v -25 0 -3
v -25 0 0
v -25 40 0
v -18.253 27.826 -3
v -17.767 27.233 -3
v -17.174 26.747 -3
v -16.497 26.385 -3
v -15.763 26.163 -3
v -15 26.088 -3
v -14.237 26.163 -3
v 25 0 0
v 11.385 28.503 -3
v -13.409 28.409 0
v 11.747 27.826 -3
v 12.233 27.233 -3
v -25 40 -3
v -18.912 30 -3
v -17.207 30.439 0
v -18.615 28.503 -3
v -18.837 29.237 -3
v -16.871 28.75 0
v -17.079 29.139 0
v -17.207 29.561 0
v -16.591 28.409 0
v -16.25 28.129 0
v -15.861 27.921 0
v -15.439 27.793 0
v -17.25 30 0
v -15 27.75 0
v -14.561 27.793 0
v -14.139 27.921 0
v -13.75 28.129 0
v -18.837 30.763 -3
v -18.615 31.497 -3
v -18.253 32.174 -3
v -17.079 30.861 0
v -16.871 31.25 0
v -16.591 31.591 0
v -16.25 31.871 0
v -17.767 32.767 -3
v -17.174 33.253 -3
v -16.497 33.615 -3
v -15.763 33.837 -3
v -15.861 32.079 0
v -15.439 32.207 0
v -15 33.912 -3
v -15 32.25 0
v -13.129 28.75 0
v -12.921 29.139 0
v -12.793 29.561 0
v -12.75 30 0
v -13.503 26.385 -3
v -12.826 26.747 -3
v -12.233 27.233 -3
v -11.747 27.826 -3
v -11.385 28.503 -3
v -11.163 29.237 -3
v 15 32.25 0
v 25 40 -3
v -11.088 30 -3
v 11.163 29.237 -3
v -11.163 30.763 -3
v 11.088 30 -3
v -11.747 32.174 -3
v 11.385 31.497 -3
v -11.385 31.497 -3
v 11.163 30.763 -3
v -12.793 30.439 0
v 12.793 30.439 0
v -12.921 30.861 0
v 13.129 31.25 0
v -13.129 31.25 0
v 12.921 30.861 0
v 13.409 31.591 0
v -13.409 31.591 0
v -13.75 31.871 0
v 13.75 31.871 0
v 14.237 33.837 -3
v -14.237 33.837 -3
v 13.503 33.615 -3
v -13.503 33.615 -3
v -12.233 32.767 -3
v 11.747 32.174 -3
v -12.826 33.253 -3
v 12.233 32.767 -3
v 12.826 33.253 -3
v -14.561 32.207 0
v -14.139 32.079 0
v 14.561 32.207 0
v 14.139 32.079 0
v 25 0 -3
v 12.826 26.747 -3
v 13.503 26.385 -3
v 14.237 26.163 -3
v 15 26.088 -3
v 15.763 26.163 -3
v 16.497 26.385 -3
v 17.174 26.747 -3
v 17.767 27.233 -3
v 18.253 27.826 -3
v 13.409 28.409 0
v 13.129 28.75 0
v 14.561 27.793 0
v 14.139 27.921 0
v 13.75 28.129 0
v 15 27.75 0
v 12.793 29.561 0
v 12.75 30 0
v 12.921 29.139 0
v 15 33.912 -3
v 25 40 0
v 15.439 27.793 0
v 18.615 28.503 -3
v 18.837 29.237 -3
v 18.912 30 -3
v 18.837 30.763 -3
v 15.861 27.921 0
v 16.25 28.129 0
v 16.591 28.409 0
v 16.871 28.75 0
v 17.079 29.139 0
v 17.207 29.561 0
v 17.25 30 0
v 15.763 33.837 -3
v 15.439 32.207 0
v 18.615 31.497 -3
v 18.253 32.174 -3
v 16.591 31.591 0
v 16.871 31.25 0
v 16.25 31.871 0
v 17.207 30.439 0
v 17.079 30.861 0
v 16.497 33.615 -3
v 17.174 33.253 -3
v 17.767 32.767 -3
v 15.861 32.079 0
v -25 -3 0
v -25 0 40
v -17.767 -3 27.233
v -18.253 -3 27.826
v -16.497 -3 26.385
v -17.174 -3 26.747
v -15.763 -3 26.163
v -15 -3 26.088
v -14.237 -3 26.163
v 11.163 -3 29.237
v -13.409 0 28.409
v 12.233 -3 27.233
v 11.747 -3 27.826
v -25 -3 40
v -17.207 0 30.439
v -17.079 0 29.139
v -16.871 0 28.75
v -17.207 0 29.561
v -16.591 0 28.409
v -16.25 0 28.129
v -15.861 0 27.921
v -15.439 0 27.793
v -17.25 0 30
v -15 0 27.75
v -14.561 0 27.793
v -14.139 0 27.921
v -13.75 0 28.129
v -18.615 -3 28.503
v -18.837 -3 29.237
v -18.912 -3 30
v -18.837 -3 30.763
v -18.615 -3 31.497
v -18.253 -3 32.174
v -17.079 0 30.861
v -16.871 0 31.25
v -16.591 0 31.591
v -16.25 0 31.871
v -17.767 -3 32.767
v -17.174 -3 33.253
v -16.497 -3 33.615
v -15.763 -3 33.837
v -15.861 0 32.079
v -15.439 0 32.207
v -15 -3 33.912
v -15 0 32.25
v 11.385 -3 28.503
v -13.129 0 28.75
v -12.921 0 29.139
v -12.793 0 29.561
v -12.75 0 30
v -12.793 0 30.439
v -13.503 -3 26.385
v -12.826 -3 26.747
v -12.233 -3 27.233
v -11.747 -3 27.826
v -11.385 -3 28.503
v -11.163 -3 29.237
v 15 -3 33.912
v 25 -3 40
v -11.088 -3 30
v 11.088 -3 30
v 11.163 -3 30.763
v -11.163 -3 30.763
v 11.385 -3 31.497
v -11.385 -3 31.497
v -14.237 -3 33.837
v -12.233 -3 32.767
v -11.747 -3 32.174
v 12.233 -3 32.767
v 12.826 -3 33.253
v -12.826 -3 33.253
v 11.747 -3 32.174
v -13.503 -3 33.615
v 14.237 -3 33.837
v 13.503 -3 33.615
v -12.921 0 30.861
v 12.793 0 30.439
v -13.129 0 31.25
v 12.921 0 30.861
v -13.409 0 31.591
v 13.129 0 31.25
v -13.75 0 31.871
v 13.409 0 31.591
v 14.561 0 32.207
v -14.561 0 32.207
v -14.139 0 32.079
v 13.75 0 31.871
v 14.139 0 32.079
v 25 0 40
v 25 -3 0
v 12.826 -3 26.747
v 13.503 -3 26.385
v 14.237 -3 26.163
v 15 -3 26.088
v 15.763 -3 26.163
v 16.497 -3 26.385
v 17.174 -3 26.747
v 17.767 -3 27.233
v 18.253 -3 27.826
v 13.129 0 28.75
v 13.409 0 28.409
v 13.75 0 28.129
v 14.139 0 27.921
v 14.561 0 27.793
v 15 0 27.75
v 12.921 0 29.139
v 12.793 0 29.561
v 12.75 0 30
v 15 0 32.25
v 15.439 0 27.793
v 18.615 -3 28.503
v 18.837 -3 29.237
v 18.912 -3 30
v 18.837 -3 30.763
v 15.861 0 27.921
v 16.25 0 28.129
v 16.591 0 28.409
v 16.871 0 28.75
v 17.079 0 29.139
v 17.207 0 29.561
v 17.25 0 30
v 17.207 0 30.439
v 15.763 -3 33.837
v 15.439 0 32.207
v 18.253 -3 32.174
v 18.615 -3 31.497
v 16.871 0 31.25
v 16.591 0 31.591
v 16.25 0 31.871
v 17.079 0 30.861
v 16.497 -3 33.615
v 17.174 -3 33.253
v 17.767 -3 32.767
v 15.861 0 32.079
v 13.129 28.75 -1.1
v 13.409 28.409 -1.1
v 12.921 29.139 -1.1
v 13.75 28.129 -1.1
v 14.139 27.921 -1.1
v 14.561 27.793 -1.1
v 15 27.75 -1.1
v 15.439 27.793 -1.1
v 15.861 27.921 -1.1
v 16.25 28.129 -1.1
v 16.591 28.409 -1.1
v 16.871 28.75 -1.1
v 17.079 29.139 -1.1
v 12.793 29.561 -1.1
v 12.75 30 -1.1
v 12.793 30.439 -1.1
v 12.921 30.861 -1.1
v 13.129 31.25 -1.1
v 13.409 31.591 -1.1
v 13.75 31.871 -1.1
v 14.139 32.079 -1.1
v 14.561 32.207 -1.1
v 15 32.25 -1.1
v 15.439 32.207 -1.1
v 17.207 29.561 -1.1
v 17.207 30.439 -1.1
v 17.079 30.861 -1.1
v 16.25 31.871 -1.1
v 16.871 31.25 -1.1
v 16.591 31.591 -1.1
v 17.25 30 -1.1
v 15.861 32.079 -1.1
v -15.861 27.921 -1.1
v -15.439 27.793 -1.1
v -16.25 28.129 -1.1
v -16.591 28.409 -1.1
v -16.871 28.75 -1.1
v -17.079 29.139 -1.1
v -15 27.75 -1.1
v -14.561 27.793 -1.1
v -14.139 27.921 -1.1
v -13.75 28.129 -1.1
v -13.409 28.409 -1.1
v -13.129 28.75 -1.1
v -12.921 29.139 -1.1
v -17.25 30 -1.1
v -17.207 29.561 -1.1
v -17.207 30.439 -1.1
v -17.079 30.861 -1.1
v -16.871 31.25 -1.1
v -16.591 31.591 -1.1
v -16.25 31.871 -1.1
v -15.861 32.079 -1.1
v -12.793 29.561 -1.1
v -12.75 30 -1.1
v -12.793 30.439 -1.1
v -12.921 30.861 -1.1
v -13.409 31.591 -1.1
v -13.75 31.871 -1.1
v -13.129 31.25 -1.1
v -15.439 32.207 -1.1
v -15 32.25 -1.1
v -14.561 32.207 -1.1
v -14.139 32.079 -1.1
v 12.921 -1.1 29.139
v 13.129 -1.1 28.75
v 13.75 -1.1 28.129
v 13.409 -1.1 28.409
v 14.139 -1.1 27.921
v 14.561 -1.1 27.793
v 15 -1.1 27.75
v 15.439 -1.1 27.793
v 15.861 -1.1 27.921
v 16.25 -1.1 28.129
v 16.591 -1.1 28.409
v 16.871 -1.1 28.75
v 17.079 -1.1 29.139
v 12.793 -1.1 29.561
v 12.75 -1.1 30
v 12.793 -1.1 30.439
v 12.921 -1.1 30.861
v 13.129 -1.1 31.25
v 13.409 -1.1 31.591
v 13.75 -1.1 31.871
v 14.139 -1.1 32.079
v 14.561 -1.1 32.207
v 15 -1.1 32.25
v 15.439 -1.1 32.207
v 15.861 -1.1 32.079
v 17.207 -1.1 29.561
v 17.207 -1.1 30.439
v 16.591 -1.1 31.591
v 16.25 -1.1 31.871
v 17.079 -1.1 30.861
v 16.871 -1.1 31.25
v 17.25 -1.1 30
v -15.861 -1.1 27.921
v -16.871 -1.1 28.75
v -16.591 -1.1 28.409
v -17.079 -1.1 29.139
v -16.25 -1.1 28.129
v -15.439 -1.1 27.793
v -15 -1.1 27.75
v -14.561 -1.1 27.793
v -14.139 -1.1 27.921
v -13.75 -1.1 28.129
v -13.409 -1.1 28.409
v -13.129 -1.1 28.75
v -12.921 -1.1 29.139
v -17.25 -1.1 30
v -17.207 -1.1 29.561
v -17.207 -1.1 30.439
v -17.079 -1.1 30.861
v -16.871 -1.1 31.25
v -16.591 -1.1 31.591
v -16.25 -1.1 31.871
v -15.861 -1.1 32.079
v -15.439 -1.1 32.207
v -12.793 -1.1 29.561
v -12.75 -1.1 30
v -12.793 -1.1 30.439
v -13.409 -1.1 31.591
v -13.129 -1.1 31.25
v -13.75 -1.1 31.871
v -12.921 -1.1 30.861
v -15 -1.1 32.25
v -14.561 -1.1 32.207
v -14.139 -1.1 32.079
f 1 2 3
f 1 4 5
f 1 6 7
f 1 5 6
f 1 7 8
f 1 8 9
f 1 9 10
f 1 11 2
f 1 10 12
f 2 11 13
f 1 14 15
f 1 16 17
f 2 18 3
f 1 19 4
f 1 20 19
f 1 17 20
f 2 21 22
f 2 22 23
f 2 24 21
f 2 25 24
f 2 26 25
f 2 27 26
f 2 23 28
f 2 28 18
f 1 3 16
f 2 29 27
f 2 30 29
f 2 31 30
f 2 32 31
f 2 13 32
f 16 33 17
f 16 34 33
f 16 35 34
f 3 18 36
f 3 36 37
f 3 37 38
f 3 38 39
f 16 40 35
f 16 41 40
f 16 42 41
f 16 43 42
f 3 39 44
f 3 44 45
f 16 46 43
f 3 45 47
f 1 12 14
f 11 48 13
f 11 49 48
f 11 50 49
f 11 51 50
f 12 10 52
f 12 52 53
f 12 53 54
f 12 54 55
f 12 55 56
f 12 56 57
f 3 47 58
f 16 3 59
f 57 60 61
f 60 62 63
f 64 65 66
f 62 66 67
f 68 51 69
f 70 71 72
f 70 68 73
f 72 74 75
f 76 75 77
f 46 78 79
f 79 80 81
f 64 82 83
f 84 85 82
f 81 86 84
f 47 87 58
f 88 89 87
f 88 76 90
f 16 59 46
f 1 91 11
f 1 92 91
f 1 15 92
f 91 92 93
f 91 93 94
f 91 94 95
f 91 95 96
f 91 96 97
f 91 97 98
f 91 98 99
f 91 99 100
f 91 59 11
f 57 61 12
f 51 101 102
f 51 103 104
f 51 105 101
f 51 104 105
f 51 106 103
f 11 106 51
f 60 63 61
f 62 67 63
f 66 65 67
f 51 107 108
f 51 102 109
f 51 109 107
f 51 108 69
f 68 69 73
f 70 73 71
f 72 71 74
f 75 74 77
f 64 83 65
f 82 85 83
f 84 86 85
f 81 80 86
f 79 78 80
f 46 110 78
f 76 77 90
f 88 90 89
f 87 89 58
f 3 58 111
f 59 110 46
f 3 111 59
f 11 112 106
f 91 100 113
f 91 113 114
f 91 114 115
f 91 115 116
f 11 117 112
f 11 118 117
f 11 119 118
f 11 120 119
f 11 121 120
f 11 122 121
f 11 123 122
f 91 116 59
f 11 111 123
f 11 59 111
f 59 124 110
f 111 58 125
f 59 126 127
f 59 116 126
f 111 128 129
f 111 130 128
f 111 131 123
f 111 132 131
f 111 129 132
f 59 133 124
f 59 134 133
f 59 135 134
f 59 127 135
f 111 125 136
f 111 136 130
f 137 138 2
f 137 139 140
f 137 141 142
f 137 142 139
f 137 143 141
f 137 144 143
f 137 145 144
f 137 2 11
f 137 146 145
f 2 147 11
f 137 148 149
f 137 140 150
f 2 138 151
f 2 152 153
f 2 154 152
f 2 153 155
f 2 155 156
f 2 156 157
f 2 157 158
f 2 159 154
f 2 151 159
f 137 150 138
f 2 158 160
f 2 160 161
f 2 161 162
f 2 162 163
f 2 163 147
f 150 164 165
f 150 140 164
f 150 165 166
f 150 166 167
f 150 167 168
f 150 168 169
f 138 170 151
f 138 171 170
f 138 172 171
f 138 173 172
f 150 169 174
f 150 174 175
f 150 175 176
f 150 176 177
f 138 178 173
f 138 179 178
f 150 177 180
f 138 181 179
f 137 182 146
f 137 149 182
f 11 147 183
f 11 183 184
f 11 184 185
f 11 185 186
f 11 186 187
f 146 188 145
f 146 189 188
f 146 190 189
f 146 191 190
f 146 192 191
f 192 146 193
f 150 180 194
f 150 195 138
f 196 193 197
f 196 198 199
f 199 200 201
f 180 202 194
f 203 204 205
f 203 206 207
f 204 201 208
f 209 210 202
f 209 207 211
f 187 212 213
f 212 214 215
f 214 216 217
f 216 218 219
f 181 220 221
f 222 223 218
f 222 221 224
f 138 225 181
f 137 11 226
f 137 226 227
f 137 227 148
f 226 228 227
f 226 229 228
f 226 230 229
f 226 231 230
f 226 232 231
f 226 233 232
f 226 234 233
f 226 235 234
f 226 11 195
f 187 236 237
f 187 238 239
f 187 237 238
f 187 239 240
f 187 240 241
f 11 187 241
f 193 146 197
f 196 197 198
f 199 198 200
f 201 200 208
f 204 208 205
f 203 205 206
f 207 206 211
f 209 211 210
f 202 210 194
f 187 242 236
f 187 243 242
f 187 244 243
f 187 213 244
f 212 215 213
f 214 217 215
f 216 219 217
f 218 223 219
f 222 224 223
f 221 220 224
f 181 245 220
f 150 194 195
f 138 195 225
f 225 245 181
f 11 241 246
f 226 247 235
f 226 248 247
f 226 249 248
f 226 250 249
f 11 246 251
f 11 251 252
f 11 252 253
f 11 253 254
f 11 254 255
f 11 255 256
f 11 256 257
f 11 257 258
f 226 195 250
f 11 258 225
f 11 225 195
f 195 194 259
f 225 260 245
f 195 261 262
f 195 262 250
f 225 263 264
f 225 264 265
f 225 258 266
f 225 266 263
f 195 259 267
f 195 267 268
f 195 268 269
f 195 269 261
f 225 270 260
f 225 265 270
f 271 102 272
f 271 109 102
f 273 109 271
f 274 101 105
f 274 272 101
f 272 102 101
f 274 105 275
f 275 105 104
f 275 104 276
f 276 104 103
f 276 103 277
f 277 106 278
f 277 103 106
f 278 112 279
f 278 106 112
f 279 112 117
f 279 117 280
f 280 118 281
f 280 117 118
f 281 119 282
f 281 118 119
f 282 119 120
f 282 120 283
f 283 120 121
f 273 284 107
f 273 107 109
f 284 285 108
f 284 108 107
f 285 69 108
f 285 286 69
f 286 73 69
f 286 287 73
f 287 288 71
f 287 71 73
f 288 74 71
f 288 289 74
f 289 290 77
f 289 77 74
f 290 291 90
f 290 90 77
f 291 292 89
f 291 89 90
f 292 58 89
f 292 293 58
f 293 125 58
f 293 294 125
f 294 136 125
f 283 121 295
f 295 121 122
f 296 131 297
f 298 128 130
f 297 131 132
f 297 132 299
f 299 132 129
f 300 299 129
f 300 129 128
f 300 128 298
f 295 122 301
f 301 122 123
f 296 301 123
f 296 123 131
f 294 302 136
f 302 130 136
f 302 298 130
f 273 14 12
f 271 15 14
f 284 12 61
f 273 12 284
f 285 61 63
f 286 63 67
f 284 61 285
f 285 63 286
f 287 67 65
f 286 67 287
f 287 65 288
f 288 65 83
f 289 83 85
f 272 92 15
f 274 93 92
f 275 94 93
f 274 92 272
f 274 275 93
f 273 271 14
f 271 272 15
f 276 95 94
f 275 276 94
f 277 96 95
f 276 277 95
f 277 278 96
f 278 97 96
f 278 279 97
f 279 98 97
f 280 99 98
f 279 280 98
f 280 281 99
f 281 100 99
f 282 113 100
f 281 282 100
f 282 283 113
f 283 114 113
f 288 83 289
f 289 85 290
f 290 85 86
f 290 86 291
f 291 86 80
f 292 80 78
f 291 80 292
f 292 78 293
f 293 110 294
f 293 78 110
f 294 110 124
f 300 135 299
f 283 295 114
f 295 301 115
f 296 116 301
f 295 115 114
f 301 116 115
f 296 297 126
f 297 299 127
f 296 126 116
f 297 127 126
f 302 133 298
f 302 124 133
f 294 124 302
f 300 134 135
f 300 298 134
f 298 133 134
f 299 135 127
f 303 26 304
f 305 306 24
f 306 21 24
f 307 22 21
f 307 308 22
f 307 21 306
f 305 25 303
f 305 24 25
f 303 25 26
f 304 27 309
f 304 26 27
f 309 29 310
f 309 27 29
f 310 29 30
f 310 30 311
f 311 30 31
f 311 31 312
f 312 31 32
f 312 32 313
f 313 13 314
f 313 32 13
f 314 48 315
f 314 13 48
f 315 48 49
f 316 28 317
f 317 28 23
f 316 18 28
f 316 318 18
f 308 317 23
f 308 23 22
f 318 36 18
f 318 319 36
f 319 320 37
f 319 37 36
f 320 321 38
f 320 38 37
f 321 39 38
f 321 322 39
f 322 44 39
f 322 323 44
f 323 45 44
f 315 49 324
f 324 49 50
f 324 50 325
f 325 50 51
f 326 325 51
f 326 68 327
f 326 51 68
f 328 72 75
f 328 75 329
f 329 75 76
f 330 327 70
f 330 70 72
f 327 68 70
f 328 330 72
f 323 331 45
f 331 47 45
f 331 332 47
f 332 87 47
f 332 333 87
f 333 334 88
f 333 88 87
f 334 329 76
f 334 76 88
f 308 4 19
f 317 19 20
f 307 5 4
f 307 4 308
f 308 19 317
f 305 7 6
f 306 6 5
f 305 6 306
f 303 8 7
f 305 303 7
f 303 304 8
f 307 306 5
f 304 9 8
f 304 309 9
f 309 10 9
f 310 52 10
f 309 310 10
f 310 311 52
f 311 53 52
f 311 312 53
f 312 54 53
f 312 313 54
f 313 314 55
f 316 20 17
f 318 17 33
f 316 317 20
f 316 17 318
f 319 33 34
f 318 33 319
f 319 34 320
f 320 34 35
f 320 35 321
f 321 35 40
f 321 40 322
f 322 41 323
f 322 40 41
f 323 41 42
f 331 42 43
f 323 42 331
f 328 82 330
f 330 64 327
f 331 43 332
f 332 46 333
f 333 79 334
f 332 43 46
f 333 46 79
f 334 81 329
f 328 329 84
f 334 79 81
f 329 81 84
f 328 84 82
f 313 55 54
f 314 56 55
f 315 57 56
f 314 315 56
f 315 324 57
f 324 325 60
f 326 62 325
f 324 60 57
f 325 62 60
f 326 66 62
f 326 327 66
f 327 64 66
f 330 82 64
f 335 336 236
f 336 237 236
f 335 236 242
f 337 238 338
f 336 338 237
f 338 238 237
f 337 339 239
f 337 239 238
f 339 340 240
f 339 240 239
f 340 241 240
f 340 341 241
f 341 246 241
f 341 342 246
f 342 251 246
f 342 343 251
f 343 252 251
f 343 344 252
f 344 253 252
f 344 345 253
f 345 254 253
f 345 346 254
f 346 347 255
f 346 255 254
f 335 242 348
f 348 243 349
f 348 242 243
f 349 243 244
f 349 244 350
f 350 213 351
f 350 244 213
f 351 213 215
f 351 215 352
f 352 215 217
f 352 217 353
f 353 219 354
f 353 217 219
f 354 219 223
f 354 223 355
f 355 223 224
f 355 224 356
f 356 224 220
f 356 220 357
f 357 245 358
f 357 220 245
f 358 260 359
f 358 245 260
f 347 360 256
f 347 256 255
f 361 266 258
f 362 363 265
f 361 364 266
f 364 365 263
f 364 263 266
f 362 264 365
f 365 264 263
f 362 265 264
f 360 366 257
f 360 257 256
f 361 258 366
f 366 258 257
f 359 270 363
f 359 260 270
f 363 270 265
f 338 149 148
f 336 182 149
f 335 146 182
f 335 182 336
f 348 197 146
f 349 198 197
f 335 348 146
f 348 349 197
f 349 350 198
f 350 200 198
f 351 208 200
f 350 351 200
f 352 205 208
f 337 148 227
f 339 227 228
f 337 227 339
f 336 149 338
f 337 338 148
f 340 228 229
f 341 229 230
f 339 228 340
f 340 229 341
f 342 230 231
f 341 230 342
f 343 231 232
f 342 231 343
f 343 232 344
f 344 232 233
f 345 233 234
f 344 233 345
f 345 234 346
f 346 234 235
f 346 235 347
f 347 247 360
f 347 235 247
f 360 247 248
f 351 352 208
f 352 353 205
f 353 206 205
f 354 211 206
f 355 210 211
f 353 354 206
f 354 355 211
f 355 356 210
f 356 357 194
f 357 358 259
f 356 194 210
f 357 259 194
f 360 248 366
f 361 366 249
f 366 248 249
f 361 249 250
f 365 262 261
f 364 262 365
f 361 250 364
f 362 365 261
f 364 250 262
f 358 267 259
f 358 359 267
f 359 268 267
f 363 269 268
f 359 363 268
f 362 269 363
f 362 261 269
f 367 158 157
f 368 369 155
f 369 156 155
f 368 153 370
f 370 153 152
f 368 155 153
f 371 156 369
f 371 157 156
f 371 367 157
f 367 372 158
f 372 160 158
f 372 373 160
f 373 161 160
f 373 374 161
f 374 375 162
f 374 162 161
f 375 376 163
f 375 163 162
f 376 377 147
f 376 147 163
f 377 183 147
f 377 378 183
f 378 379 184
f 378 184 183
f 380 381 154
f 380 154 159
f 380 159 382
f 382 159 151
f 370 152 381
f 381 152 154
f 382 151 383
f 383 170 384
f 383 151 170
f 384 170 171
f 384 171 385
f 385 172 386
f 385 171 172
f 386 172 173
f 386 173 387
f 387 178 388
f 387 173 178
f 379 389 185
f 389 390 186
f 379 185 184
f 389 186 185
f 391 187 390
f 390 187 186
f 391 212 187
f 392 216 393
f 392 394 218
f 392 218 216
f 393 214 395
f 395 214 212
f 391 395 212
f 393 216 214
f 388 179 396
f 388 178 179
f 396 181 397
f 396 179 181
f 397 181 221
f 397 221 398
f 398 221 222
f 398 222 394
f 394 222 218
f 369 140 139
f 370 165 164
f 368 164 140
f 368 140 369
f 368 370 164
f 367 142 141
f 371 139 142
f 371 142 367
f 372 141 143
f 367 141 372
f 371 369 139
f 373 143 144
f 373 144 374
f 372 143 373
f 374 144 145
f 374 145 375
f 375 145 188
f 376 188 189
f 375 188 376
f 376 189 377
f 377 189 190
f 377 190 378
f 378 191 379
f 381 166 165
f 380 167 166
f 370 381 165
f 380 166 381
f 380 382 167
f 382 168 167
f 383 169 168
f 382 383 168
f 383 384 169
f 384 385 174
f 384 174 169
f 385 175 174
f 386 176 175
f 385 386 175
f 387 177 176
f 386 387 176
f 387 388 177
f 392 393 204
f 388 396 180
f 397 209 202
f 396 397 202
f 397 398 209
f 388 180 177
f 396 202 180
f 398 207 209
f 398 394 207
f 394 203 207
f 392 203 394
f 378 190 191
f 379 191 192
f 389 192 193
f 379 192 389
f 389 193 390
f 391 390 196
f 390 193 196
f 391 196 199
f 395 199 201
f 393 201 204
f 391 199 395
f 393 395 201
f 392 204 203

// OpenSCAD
// L-bracket parameters
width = 50;        // X direction
flange = 40;       // flange length (Y for horizontal, Z for vertical)
thickness = 3;     // plate thickness

// Countersunk hole parameters
hole_d = 4.5;      // through hole diameter for M4
csink_d = 8;       // countersink diameter
csink_depth = 2;   // countersink depth

// Hole positions
hole_inset = 10;   // distance from edge of flange
hole_x1 = width / 2 - hole_inset;  // symmetric X positions
hole_x2 = -(width / 2 - hole_inset);

module countersunk_hole(h, hole_dia, csink_dia, csink_dep) {
    // Through hole
    cylinder(d = hole_dia, h = h + 0.2, center = false, $fn = 32);
    // Countersink (at top)
    translate([0, 0, h - csink_dep])
        cylinder(d1 = hole_dia, d2 = csink_dia, h = csink_dep + 0.1, $fn = 32);
}

difference() {
    union() {
        // Horizontal flange: extends in +Y direction, sits on Z=0 plane
        // X: centered on 0, Y: 0 to flange, Z: -thickness to 0
        translate([-width/2, 0, -thickness])
            cube([width, flange, thickness]);

        // Vertical flange: extends in +Z direction
        // X: centered on 0, Y: -thickness to 0, Z: 0 to flange
        translate([-width/2, -thickness, 0])
            cube([width, thickness, flange]);
    }

    // --- Horizontal flange holes ---
    // Holes at Y = hole_inset from far edge => Y = flange - hole_inset
    // Countersink on bottom (outside = -Z side), bolt head sits on bottom
    // Hole goes from Z = -thickness to Z = 0
    // We model hole from bottom up: origin at Z = -thickness - 0.1
    for (hx = [hole_x1, hole_x2]) {
        translate([hx, flange - hole_inset, -thickness - 0.1]) {
            // Through hole
            cylinder(d = hole_d, h = thickness + 0.2, $fn = 32);
        }
        // Countersink at bottom (Z = -thickness side, outside)
        translate([hx, flange - hole_inset, -thickness - 0.1]) {
            cylinder(d1 = csink_d, d2 = hole_d, h = csink_depth, $fn = 32);
        }
    }

    // --- Vertical flange holes ---
    // Holes at Z = flange - hole_inset from top edge
    // Countersink on outside = -Y side (at Y = -thickness)
    // Flange goes from Y = -thickness to Y = 0
    for (hx = [hole_x1, hole_x2]) {
        translate([hx, -thickness - 0.1, flange - hole_inset]) {
            rotate([-90, 0, 0]) {
                // Through hole (along +Y after rotation means original -Z)
                // After rotate -90 about X: new Y direction = original Z
                // We need hole along Y axis (through the vertical plate)
                // rotate [-90,0,0] maps Z->Y
                cylinder(d = hole_d, h = thickness + 0.2, $fn = 32);
            }
        }
        // Countersink on -Y side (outside)
        translate([hx, -thickness - 0.1, flange - hole_inset]) {
            rotate([-90, 0, 0]) {
                cylinder(d1 = csink_d, d2 = hole_d, h = csink_depth, $fn = 32);
            }
        }
    }
}
